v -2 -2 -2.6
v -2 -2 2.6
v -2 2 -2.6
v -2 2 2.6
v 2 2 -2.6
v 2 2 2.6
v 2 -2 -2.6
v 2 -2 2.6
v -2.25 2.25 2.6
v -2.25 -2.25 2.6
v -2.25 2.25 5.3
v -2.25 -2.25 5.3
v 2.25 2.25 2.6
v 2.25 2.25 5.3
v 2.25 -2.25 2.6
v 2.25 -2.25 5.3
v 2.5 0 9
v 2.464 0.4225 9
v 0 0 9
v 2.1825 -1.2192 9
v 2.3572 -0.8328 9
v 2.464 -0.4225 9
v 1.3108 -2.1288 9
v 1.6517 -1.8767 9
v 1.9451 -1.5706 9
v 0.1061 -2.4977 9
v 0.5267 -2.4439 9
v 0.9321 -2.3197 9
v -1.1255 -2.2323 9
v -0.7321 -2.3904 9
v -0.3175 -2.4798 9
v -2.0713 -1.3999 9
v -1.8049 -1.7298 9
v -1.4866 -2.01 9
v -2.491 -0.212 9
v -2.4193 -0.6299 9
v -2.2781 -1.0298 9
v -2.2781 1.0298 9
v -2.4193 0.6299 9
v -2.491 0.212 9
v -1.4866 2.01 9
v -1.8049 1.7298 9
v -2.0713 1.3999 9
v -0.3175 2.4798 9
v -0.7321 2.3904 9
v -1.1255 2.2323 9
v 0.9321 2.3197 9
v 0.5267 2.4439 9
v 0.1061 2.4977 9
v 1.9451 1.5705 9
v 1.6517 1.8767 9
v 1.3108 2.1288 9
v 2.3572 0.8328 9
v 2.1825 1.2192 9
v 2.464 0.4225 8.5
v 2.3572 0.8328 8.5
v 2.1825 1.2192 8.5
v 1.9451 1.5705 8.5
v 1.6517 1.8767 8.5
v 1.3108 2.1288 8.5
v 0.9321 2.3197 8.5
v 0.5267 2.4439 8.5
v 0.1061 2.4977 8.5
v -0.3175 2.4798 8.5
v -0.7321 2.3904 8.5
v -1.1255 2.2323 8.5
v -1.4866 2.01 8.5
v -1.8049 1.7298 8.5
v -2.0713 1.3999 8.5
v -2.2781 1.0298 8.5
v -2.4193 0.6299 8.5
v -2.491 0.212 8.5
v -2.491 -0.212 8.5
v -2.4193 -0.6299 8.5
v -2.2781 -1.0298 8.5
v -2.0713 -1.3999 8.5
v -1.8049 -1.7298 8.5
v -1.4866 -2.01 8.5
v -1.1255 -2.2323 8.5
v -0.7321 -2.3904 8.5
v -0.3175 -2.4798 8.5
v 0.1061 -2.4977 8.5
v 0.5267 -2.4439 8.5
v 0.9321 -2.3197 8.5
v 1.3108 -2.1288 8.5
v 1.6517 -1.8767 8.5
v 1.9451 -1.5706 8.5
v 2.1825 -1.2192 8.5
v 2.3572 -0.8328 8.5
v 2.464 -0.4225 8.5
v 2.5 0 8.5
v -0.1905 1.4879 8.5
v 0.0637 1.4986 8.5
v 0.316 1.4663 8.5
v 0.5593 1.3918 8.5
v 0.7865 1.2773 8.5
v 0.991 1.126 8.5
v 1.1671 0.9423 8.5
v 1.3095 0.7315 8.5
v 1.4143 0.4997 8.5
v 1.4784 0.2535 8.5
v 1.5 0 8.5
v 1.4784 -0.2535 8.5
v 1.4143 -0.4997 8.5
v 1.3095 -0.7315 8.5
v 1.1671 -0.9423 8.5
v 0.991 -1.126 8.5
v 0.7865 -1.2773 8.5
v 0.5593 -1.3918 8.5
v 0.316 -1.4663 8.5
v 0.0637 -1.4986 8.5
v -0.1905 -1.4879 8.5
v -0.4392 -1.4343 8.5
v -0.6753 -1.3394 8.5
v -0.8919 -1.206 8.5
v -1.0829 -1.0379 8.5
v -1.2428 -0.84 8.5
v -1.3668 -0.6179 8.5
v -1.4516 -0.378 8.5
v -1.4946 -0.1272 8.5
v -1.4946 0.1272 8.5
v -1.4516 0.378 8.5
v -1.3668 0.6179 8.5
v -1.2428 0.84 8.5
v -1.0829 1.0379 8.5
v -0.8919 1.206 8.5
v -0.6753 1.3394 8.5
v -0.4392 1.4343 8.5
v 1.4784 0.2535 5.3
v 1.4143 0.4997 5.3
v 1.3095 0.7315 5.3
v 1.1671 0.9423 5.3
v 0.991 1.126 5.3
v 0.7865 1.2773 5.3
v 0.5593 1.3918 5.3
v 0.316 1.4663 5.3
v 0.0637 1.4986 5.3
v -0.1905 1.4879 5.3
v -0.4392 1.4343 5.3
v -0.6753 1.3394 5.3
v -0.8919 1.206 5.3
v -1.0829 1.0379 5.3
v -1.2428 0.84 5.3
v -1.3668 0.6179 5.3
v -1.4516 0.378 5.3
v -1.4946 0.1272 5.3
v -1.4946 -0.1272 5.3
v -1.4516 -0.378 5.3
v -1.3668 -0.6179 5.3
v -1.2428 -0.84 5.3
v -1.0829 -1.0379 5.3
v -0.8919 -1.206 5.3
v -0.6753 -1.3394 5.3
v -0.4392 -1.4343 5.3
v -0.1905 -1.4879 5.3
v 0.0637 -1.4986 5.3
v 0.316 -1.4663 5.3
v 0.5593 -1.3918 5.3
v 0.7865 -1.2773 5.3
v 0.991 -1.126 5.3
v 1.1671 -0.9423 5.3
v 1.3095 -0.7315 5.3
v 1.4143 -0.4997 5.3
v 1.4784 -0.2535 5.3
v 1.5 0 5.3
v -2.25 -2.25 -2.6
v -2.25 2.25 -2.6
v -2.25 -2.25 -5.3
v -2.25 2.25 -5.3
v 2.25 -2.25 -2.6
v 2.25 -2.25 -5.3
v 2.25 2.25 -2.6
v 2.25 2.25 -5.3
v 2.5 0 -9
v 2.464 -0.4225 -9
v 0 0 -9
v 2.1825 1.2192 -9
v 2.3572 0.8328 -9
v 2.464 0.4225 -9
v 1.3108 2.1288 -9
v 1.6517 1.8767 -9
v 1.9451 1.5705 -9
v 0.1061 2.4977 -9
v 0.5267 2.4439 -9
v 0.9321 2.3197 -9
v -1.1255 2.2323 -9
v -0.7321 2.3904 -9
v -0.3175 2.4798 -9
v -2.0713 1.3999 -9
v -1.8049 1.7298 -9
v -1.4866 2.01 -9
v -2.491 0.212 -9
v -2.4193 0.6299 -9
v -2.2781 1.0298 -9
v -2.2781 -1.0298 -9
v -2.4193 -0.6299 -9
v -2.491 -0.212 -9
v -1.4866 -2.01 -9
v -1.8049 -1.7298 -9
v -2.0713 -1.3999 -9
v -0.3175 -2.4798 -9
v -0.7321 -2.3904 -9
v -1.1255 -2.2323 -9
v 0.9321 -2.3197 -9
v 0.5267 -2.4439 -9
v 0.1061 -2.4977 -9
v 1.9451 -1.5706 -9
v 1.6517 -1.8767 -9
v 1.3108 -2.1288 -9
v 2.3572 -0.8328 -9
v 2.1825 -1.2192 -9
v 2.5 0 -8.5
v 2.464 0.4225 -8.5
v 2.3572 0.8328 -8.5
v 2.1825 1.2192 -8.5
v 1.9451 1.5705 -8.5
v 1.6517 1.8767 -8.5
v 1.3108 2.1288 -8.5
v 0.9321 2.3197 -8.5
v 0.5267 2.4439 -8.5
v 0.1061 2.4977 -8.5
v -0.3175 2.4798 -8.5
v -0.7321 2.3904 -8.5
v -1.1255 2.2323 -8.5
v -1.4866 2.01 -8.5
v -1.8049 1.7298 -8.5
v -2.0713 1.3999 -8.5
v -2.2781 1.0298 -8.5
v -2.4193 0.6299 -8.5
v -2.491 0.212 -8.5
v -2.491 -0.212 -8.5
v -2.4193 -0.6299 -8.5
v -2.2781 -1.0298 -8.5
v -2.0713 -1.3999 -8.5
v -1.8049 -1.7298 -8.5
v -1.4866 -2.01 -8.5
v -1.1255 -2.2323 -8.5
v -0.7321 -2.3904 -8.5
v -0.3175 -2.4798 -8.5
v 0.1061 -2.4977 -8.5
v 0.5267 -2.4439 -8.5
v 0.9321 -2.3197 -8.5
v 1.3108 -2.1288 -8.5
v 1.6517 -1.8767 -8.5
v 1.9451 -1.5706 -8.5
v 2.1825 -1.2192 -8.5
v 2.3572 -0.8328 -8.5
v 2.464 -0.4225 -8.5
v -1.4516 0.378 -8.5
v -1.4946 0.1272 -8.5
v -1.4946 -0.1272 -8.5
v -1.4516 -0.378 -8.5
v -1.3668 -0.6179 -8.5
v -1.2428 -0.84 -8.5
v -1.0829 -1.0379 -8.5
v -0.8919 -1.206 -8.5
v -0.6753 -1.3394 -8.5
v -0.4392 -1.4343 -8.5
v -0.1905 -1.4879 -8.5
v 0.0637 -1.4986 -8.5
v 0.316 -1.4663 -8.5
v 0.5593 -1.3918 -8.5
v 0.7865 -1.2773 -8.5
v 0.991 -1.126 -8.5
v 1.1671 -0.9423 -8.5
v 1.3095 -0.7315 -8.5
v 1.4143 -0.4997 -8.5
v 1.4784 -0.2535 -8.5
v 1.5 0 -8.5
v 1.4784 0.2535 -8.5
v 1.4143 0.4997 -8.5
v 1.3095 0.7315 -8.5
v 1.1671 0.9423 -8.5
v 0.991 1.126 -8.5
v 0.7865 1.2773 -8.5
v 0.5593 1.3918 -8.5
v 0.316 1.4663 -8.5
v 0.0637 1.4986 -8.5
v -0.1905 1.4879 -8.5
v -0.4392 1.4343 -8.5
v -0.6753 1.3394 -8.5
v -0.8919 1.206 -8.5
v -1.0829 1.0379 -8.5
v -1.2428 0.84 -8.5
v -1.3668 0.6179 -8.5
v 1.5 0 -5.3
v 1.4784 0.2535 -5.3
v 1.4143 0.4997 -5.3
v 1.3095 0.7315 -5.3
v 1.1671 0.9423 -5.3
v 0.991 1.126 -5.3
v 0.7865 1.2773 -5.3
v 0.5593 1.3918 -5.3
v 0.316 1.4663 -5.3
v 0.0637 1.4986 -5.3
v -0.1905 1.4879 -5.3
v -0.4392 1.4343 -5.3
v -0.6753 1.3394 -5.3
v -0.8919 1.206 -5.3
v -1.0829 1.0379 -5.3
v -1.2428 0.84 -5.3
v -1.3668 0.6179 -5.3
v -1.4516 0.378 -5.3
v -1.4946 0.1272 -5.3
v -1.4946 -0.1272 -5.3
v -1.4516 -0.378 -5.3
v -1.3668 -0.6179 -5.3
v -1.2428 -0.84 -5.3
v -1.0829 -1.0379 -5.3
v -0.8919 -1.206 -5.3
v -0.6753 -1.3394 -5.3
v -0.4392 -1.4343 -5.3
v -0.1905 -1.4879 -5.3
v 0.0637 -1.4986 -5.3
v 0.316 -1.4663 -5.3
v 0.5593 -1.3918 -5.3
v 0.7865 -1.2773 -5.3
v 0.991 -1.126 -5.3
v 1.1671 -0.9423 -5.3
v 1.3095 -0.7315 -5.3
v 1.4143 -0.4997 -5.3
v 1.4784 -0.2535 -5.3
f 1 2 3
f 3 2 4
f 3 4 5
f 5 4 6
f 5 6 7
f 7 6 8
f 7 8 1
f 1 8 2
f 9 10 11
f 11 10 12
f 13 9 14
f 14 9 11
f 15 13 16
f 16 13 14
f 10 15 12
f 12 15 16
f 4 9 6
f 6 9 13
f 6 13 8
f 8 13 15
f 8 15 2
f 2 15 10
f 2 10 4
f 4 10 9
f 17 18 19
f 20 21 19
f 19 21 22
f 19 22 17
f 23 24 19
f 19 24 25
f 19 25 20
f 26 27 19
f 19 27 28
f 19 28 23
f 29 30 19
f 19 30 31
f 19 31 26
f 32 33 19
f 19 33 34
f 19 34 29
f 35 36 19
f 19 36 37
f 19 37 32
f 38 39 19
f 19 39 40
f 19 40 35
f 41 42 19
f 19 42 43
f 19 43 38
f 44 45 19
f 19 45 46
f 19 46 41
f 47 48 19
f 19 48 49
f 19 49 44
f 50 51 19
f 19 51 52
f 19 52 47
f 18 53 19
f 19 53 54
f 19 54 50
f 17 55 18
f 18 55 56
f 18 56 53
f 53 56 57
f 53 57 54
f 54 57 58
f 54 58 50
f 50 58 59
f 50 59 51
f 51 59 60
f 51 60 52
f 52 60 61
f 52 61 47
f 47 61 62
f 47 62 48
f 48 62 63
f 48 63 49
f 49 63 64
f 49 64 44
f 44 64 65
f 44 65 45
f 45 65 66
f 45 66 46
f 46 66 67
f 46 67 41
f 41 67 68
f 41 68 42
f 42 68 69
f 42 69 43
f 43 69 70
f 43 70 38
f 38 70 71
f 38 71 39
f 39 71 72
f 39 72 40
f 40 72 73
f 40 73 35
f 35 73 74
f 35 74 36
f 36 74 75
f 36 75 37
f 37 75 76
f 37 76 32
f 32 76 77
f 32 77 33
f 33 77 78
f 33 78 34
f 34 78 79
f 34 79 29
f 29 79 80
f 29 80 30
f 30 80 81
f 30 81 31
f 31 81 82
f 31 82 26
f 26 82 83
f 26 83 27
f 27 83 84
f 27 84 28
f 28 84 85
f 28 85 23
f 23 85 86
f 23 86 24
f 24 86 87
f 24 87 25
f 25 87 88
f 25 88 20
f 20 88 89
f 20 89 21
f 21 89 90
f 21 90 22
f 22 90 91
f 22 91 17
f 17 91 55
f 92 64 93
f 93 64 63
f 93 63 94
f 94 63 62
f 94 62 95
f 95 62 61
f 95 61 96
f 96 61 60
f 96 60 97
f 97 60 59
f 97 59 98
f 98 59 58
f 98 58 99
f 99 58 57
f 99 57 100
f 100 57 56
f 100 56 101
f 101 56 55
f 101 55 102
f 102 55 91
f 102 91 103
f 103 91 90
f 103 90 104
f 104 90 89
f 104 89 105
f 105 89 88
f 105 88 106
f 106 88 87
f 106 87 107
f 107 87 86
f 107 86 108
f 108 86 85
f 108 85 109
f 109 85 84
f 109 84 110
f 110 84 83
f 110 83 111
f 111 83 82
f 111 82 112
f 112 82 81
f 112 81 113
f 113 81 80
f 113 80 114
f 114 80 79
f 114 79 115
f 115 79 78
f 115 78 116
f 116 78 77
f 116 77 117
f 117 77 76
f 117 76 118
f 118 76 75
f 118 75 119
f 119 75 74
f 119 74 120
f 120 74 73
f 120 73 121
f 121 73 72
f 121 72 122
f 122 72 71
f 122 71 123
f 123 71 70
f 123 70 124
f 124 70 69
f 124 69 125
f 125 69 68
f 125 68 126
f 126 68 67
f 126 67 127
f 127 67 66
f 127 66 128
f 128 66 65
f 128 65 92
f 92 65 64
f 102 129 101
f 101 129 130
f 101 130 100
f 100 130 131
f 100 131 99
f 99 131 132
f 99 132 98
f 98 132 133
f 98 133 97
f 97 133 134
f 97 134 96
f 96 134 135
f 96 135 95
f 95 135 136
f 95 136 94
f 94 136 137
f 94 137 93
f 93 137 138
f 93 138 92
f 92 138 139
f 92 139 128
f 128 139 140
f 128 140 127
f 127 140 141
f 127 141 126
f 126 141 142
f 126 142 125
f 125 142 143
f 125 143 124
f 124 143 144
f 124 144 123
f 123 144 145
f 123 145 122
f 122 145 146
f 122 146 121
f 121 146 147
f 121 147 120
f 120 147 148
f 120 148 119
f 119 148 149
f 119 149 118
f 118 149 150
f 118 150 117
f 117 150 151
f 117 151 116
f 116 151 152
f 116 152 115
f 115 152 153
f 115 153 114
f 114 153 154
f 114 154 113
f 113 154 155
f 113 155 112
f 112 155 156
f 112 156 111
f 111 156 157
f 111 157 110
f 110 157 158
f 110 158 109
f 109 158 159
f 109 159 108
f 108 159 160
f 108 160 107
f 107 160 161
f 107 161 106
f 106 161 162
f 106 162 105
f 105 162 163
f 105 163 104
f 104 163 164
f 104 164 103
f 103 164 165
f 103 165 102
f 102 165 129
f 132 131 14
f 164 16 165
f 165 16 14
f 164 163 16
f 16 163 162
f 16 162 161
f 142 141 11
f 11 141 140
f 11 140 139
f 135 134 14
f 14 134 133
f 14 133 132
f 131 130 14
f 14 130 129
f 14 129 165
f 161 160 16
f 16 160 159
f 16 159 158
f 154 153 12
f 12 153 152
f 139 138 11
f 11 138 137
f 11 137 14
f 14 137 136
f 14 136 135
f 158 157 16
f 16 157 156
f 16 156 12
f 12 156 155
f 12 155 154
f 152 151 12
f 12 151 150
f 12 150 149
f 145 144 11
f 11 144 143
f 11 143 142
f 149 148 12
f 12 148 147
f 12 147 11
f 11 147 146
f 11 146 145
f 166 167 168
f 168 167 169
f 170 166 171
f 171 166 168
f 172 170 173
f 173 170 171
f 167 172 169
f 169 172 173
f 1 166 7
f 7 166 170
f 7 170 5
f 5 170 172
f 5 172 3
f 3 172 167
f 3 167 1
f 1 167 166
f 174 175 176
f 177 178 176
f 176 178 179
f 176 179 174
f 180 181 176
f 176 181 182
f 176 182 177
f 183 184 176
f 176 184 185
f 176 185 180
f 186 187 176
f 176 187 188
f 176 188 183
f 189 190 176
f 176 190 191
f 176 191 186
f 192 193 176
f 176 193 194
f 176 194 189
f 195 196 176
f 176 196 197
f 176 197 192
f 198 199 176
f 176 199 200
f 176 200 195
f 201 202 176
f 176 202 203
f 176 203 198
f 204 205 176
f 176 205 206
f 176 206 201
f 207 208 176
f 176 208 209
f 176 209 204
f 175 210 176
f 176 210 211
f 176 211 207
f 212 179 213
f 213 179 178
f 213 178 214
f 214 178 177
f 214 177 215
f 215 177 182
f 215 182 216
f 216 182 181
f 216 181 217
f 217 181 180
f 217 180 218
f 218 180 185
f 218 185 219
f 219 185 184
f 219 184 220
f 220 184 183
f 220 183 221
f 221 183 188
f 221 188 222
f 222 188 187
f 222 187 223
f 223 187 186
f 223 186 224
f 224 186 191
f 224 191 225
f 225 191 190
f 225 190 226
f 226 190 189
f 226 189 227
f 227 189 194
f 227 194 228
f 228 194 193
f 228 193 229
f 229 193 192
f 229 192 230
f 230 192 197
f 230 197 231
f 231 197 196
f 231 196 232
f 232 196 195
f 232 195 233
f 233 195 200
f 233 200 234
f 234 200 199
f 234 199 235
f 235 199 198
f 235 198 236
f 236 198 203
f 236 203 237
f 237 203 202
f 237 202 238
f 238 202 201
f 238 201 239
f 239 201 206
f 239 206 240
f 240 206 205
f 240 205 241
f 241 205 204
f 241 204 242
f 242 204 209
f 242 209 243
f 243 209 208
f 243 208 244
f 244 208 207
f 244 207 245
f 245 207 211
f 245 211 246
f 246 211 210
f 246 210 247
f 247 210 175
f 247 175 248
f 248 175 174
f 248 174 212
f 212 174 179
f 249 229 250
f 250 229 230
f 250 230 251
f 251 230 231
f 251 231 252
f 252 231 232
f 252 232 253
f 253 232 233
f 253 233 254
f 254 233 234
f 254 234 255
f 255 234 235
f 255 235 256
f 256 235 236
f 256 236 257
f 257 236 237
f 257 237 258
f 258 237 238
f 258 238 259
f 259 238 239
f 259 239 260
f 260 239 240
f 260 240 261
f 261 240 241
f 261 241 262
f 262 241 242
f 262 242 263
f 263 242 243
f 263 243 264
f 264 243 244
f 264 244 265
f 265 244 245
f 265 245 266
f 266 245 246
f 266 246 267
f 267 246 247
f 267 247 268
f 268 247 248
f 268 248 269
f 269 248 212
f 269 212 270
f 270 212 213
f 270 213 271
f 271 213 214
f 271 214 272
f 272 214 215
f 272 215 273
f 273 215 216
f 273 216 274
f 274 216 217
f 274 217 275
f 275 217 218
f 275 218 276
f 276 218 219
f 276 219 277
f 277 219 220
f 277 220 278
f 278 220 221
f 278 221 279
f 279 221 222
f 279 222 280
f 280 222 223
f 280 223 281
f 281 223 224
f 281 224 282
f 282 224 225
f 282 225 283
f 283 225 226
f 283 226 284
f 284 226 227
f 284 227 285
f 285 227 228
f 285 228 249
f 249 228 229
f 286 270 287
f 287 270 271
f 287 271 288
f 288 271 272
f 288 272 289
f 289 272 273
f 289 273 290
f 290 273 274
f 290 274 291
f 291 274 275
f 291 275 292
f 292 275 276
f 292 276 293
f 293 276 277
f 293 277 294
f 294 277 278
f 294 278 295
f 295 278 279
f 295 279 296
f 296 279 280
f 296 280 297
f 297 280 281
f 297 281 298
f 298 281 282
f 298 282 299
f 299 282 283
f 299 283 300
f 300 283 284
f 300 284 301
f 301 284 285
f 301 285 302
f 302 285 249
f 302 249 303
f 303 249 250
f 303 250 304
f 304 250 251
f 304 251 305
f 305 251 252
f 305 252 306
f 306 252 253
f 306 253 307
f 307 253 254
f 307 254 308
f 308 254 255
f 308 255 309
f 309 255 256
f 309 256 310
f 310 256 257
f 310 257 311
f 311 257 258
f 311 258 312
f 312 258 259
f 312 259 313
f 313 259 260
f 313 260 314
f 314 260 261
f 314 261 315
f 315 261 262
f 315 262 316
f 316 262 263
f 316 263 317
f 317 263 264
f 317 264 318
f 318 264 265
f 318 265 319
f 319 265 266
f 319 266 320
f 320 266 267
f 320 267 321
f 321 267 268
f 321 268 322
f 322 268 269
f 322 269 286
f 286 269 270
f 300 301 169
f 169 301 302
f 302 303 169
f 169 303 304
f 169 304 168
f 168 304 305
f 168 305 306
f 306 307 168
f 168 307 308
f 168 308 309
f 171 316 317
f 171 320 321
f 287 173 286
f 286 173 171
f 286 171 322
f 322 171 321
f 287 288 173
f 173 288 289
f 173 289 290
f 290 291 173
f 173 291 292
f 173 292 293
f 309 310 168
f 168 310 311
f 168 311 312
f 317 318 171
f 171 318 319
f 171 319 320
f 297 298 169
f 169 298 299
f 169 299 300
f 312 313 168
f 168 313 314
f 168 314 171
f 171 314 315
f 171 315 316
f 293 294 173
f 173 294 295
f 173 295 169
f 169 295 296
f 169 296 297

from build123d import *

# Parameters (mm, degrees)
SKETCH2_W           = 4
SKETCH2_H           = 4
BOSS_EXTRUDE1_DEPTH = 10.6
SKETCH4_W           = 4.5
SKETCH4_H           = 4.5
BOSS_EXTRUDE3_DEPTH = 2.7


with BuildPart() as part:
    # Sketch1 → Revolve1 (revolve)
    with BuildSketch(Plane(origin=(0, 0, 0), x_dir=(0, 0, -1), z_dir=(1, 0, 0)), mode=Mode.PRIVATE) as revolve1_sk:
        Polygon((-9, 0), (9, 0), (9, 2.5), (8.5, 2.5), (8.5, 1.5), (5.3, 1.5), (5.3, 2), (-5.3, 2), (-5.3, 1.5), (-8.5, 1.5), (-8.5, 2.5), (-9, 2.5), align=None)
    revolve(revolve1_sk.sketch.rotate(Axis((0, 0, 9), (0, 0, -1)), 90), axis=Axis((0, 0, 9), (0, 0, -1)))

    # Sketch2 → Boss-Extrude1 (add)
    with BuildSketch(Plane.XY.offset(5.3)):
        Rectangle(SKETCH2_W, SKETCH2_H)
    extrude(amount=-BOSS_EXTRUDE1_DEPTH)

    # Sketch4 → Boss-Extrude3 (add)
    with BuildSketch(Plane.XY.offset(5.3)):
        Rectangle(SKETCH4_W, SKETCH4_H)
    boss_extrude3 = extrude(amount=-BOSS_EXTRUDE3_DEPTH)

    # Mirror1: Boss-Extrude3 across plane
    add(boss_extrude3.mirror(Plane.XY))


solid = part.part
